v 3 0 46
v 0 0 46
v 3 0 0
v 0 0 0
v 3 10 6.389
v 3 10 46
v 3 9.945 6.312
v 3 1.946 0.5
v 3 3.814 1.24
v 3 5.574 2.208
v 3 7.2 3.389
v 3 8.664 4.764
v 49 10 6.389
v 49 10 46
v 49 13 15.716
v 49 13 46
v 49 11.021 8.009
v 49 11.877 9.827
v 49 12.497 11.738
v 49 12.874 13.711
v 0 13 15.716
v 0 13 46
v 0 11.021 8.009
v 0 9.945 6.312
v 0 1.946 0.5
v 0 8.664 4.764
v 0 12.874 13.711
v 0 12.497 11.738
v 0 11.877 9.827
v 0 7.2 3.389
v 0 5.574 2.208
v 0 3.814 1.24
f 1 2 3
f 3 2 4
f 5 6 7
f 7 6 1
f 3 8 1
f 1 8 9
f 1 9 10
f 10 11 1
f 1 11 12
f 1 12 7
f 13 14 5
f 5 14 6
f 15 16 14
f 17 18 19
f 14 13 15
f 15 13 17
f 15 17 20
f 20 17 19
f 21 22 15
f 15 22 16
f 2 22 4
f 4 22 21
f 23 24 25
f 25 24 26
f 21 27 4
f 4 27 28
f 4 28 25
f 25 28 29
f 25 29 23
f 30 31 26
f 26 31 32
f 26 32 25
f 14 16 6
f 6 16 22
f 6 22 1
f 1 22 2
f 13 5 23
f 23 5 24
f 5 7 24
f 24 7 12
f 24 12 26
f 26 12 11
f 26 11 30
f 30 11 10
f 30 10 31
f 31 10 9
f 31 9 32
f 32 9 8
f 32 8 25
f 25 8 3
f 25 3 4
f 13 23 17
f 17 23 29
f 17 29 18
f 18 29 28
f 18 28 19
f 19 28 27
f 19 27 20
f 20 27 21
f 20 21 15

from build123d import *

# Parameters (mm, degrees)
Y_KSEKLIK_EKSTR_ZYON1_DEPTH = 46
RADYUS1_DEPTH               = 49


with BuildPart() as part:
    # Çizim1 → Yükseklik-Ekstrüzyon1 (new body)
    with BuildSketch(Plane.XY):
        Polygon((0, 0), (0, 13), (49, 13), (49, 10), (3, 10), (3, 0), align=None)
    extrude(amount=Y_KSEKLIK_EKSTR_ZYON1_DEPTH)

    # Radyus1: read off the stored shape, not the designer's step
    # Radyus1 outline → Radyus1 (cut)
    with BuildSketch(Plane.YZ):
        with BuildLine():
            Line((0, 0), (13, 0))
            Line((13, 0), (13, 15.716233646))
            ThreePointArc((13, 15.716233646), (9.328828006, 5.518194618), (0, 0))
        make_face()
    extrude(amount=RADYUS1_DEPTH, mode=Mode.SUBTRACT)


solid = part.part
